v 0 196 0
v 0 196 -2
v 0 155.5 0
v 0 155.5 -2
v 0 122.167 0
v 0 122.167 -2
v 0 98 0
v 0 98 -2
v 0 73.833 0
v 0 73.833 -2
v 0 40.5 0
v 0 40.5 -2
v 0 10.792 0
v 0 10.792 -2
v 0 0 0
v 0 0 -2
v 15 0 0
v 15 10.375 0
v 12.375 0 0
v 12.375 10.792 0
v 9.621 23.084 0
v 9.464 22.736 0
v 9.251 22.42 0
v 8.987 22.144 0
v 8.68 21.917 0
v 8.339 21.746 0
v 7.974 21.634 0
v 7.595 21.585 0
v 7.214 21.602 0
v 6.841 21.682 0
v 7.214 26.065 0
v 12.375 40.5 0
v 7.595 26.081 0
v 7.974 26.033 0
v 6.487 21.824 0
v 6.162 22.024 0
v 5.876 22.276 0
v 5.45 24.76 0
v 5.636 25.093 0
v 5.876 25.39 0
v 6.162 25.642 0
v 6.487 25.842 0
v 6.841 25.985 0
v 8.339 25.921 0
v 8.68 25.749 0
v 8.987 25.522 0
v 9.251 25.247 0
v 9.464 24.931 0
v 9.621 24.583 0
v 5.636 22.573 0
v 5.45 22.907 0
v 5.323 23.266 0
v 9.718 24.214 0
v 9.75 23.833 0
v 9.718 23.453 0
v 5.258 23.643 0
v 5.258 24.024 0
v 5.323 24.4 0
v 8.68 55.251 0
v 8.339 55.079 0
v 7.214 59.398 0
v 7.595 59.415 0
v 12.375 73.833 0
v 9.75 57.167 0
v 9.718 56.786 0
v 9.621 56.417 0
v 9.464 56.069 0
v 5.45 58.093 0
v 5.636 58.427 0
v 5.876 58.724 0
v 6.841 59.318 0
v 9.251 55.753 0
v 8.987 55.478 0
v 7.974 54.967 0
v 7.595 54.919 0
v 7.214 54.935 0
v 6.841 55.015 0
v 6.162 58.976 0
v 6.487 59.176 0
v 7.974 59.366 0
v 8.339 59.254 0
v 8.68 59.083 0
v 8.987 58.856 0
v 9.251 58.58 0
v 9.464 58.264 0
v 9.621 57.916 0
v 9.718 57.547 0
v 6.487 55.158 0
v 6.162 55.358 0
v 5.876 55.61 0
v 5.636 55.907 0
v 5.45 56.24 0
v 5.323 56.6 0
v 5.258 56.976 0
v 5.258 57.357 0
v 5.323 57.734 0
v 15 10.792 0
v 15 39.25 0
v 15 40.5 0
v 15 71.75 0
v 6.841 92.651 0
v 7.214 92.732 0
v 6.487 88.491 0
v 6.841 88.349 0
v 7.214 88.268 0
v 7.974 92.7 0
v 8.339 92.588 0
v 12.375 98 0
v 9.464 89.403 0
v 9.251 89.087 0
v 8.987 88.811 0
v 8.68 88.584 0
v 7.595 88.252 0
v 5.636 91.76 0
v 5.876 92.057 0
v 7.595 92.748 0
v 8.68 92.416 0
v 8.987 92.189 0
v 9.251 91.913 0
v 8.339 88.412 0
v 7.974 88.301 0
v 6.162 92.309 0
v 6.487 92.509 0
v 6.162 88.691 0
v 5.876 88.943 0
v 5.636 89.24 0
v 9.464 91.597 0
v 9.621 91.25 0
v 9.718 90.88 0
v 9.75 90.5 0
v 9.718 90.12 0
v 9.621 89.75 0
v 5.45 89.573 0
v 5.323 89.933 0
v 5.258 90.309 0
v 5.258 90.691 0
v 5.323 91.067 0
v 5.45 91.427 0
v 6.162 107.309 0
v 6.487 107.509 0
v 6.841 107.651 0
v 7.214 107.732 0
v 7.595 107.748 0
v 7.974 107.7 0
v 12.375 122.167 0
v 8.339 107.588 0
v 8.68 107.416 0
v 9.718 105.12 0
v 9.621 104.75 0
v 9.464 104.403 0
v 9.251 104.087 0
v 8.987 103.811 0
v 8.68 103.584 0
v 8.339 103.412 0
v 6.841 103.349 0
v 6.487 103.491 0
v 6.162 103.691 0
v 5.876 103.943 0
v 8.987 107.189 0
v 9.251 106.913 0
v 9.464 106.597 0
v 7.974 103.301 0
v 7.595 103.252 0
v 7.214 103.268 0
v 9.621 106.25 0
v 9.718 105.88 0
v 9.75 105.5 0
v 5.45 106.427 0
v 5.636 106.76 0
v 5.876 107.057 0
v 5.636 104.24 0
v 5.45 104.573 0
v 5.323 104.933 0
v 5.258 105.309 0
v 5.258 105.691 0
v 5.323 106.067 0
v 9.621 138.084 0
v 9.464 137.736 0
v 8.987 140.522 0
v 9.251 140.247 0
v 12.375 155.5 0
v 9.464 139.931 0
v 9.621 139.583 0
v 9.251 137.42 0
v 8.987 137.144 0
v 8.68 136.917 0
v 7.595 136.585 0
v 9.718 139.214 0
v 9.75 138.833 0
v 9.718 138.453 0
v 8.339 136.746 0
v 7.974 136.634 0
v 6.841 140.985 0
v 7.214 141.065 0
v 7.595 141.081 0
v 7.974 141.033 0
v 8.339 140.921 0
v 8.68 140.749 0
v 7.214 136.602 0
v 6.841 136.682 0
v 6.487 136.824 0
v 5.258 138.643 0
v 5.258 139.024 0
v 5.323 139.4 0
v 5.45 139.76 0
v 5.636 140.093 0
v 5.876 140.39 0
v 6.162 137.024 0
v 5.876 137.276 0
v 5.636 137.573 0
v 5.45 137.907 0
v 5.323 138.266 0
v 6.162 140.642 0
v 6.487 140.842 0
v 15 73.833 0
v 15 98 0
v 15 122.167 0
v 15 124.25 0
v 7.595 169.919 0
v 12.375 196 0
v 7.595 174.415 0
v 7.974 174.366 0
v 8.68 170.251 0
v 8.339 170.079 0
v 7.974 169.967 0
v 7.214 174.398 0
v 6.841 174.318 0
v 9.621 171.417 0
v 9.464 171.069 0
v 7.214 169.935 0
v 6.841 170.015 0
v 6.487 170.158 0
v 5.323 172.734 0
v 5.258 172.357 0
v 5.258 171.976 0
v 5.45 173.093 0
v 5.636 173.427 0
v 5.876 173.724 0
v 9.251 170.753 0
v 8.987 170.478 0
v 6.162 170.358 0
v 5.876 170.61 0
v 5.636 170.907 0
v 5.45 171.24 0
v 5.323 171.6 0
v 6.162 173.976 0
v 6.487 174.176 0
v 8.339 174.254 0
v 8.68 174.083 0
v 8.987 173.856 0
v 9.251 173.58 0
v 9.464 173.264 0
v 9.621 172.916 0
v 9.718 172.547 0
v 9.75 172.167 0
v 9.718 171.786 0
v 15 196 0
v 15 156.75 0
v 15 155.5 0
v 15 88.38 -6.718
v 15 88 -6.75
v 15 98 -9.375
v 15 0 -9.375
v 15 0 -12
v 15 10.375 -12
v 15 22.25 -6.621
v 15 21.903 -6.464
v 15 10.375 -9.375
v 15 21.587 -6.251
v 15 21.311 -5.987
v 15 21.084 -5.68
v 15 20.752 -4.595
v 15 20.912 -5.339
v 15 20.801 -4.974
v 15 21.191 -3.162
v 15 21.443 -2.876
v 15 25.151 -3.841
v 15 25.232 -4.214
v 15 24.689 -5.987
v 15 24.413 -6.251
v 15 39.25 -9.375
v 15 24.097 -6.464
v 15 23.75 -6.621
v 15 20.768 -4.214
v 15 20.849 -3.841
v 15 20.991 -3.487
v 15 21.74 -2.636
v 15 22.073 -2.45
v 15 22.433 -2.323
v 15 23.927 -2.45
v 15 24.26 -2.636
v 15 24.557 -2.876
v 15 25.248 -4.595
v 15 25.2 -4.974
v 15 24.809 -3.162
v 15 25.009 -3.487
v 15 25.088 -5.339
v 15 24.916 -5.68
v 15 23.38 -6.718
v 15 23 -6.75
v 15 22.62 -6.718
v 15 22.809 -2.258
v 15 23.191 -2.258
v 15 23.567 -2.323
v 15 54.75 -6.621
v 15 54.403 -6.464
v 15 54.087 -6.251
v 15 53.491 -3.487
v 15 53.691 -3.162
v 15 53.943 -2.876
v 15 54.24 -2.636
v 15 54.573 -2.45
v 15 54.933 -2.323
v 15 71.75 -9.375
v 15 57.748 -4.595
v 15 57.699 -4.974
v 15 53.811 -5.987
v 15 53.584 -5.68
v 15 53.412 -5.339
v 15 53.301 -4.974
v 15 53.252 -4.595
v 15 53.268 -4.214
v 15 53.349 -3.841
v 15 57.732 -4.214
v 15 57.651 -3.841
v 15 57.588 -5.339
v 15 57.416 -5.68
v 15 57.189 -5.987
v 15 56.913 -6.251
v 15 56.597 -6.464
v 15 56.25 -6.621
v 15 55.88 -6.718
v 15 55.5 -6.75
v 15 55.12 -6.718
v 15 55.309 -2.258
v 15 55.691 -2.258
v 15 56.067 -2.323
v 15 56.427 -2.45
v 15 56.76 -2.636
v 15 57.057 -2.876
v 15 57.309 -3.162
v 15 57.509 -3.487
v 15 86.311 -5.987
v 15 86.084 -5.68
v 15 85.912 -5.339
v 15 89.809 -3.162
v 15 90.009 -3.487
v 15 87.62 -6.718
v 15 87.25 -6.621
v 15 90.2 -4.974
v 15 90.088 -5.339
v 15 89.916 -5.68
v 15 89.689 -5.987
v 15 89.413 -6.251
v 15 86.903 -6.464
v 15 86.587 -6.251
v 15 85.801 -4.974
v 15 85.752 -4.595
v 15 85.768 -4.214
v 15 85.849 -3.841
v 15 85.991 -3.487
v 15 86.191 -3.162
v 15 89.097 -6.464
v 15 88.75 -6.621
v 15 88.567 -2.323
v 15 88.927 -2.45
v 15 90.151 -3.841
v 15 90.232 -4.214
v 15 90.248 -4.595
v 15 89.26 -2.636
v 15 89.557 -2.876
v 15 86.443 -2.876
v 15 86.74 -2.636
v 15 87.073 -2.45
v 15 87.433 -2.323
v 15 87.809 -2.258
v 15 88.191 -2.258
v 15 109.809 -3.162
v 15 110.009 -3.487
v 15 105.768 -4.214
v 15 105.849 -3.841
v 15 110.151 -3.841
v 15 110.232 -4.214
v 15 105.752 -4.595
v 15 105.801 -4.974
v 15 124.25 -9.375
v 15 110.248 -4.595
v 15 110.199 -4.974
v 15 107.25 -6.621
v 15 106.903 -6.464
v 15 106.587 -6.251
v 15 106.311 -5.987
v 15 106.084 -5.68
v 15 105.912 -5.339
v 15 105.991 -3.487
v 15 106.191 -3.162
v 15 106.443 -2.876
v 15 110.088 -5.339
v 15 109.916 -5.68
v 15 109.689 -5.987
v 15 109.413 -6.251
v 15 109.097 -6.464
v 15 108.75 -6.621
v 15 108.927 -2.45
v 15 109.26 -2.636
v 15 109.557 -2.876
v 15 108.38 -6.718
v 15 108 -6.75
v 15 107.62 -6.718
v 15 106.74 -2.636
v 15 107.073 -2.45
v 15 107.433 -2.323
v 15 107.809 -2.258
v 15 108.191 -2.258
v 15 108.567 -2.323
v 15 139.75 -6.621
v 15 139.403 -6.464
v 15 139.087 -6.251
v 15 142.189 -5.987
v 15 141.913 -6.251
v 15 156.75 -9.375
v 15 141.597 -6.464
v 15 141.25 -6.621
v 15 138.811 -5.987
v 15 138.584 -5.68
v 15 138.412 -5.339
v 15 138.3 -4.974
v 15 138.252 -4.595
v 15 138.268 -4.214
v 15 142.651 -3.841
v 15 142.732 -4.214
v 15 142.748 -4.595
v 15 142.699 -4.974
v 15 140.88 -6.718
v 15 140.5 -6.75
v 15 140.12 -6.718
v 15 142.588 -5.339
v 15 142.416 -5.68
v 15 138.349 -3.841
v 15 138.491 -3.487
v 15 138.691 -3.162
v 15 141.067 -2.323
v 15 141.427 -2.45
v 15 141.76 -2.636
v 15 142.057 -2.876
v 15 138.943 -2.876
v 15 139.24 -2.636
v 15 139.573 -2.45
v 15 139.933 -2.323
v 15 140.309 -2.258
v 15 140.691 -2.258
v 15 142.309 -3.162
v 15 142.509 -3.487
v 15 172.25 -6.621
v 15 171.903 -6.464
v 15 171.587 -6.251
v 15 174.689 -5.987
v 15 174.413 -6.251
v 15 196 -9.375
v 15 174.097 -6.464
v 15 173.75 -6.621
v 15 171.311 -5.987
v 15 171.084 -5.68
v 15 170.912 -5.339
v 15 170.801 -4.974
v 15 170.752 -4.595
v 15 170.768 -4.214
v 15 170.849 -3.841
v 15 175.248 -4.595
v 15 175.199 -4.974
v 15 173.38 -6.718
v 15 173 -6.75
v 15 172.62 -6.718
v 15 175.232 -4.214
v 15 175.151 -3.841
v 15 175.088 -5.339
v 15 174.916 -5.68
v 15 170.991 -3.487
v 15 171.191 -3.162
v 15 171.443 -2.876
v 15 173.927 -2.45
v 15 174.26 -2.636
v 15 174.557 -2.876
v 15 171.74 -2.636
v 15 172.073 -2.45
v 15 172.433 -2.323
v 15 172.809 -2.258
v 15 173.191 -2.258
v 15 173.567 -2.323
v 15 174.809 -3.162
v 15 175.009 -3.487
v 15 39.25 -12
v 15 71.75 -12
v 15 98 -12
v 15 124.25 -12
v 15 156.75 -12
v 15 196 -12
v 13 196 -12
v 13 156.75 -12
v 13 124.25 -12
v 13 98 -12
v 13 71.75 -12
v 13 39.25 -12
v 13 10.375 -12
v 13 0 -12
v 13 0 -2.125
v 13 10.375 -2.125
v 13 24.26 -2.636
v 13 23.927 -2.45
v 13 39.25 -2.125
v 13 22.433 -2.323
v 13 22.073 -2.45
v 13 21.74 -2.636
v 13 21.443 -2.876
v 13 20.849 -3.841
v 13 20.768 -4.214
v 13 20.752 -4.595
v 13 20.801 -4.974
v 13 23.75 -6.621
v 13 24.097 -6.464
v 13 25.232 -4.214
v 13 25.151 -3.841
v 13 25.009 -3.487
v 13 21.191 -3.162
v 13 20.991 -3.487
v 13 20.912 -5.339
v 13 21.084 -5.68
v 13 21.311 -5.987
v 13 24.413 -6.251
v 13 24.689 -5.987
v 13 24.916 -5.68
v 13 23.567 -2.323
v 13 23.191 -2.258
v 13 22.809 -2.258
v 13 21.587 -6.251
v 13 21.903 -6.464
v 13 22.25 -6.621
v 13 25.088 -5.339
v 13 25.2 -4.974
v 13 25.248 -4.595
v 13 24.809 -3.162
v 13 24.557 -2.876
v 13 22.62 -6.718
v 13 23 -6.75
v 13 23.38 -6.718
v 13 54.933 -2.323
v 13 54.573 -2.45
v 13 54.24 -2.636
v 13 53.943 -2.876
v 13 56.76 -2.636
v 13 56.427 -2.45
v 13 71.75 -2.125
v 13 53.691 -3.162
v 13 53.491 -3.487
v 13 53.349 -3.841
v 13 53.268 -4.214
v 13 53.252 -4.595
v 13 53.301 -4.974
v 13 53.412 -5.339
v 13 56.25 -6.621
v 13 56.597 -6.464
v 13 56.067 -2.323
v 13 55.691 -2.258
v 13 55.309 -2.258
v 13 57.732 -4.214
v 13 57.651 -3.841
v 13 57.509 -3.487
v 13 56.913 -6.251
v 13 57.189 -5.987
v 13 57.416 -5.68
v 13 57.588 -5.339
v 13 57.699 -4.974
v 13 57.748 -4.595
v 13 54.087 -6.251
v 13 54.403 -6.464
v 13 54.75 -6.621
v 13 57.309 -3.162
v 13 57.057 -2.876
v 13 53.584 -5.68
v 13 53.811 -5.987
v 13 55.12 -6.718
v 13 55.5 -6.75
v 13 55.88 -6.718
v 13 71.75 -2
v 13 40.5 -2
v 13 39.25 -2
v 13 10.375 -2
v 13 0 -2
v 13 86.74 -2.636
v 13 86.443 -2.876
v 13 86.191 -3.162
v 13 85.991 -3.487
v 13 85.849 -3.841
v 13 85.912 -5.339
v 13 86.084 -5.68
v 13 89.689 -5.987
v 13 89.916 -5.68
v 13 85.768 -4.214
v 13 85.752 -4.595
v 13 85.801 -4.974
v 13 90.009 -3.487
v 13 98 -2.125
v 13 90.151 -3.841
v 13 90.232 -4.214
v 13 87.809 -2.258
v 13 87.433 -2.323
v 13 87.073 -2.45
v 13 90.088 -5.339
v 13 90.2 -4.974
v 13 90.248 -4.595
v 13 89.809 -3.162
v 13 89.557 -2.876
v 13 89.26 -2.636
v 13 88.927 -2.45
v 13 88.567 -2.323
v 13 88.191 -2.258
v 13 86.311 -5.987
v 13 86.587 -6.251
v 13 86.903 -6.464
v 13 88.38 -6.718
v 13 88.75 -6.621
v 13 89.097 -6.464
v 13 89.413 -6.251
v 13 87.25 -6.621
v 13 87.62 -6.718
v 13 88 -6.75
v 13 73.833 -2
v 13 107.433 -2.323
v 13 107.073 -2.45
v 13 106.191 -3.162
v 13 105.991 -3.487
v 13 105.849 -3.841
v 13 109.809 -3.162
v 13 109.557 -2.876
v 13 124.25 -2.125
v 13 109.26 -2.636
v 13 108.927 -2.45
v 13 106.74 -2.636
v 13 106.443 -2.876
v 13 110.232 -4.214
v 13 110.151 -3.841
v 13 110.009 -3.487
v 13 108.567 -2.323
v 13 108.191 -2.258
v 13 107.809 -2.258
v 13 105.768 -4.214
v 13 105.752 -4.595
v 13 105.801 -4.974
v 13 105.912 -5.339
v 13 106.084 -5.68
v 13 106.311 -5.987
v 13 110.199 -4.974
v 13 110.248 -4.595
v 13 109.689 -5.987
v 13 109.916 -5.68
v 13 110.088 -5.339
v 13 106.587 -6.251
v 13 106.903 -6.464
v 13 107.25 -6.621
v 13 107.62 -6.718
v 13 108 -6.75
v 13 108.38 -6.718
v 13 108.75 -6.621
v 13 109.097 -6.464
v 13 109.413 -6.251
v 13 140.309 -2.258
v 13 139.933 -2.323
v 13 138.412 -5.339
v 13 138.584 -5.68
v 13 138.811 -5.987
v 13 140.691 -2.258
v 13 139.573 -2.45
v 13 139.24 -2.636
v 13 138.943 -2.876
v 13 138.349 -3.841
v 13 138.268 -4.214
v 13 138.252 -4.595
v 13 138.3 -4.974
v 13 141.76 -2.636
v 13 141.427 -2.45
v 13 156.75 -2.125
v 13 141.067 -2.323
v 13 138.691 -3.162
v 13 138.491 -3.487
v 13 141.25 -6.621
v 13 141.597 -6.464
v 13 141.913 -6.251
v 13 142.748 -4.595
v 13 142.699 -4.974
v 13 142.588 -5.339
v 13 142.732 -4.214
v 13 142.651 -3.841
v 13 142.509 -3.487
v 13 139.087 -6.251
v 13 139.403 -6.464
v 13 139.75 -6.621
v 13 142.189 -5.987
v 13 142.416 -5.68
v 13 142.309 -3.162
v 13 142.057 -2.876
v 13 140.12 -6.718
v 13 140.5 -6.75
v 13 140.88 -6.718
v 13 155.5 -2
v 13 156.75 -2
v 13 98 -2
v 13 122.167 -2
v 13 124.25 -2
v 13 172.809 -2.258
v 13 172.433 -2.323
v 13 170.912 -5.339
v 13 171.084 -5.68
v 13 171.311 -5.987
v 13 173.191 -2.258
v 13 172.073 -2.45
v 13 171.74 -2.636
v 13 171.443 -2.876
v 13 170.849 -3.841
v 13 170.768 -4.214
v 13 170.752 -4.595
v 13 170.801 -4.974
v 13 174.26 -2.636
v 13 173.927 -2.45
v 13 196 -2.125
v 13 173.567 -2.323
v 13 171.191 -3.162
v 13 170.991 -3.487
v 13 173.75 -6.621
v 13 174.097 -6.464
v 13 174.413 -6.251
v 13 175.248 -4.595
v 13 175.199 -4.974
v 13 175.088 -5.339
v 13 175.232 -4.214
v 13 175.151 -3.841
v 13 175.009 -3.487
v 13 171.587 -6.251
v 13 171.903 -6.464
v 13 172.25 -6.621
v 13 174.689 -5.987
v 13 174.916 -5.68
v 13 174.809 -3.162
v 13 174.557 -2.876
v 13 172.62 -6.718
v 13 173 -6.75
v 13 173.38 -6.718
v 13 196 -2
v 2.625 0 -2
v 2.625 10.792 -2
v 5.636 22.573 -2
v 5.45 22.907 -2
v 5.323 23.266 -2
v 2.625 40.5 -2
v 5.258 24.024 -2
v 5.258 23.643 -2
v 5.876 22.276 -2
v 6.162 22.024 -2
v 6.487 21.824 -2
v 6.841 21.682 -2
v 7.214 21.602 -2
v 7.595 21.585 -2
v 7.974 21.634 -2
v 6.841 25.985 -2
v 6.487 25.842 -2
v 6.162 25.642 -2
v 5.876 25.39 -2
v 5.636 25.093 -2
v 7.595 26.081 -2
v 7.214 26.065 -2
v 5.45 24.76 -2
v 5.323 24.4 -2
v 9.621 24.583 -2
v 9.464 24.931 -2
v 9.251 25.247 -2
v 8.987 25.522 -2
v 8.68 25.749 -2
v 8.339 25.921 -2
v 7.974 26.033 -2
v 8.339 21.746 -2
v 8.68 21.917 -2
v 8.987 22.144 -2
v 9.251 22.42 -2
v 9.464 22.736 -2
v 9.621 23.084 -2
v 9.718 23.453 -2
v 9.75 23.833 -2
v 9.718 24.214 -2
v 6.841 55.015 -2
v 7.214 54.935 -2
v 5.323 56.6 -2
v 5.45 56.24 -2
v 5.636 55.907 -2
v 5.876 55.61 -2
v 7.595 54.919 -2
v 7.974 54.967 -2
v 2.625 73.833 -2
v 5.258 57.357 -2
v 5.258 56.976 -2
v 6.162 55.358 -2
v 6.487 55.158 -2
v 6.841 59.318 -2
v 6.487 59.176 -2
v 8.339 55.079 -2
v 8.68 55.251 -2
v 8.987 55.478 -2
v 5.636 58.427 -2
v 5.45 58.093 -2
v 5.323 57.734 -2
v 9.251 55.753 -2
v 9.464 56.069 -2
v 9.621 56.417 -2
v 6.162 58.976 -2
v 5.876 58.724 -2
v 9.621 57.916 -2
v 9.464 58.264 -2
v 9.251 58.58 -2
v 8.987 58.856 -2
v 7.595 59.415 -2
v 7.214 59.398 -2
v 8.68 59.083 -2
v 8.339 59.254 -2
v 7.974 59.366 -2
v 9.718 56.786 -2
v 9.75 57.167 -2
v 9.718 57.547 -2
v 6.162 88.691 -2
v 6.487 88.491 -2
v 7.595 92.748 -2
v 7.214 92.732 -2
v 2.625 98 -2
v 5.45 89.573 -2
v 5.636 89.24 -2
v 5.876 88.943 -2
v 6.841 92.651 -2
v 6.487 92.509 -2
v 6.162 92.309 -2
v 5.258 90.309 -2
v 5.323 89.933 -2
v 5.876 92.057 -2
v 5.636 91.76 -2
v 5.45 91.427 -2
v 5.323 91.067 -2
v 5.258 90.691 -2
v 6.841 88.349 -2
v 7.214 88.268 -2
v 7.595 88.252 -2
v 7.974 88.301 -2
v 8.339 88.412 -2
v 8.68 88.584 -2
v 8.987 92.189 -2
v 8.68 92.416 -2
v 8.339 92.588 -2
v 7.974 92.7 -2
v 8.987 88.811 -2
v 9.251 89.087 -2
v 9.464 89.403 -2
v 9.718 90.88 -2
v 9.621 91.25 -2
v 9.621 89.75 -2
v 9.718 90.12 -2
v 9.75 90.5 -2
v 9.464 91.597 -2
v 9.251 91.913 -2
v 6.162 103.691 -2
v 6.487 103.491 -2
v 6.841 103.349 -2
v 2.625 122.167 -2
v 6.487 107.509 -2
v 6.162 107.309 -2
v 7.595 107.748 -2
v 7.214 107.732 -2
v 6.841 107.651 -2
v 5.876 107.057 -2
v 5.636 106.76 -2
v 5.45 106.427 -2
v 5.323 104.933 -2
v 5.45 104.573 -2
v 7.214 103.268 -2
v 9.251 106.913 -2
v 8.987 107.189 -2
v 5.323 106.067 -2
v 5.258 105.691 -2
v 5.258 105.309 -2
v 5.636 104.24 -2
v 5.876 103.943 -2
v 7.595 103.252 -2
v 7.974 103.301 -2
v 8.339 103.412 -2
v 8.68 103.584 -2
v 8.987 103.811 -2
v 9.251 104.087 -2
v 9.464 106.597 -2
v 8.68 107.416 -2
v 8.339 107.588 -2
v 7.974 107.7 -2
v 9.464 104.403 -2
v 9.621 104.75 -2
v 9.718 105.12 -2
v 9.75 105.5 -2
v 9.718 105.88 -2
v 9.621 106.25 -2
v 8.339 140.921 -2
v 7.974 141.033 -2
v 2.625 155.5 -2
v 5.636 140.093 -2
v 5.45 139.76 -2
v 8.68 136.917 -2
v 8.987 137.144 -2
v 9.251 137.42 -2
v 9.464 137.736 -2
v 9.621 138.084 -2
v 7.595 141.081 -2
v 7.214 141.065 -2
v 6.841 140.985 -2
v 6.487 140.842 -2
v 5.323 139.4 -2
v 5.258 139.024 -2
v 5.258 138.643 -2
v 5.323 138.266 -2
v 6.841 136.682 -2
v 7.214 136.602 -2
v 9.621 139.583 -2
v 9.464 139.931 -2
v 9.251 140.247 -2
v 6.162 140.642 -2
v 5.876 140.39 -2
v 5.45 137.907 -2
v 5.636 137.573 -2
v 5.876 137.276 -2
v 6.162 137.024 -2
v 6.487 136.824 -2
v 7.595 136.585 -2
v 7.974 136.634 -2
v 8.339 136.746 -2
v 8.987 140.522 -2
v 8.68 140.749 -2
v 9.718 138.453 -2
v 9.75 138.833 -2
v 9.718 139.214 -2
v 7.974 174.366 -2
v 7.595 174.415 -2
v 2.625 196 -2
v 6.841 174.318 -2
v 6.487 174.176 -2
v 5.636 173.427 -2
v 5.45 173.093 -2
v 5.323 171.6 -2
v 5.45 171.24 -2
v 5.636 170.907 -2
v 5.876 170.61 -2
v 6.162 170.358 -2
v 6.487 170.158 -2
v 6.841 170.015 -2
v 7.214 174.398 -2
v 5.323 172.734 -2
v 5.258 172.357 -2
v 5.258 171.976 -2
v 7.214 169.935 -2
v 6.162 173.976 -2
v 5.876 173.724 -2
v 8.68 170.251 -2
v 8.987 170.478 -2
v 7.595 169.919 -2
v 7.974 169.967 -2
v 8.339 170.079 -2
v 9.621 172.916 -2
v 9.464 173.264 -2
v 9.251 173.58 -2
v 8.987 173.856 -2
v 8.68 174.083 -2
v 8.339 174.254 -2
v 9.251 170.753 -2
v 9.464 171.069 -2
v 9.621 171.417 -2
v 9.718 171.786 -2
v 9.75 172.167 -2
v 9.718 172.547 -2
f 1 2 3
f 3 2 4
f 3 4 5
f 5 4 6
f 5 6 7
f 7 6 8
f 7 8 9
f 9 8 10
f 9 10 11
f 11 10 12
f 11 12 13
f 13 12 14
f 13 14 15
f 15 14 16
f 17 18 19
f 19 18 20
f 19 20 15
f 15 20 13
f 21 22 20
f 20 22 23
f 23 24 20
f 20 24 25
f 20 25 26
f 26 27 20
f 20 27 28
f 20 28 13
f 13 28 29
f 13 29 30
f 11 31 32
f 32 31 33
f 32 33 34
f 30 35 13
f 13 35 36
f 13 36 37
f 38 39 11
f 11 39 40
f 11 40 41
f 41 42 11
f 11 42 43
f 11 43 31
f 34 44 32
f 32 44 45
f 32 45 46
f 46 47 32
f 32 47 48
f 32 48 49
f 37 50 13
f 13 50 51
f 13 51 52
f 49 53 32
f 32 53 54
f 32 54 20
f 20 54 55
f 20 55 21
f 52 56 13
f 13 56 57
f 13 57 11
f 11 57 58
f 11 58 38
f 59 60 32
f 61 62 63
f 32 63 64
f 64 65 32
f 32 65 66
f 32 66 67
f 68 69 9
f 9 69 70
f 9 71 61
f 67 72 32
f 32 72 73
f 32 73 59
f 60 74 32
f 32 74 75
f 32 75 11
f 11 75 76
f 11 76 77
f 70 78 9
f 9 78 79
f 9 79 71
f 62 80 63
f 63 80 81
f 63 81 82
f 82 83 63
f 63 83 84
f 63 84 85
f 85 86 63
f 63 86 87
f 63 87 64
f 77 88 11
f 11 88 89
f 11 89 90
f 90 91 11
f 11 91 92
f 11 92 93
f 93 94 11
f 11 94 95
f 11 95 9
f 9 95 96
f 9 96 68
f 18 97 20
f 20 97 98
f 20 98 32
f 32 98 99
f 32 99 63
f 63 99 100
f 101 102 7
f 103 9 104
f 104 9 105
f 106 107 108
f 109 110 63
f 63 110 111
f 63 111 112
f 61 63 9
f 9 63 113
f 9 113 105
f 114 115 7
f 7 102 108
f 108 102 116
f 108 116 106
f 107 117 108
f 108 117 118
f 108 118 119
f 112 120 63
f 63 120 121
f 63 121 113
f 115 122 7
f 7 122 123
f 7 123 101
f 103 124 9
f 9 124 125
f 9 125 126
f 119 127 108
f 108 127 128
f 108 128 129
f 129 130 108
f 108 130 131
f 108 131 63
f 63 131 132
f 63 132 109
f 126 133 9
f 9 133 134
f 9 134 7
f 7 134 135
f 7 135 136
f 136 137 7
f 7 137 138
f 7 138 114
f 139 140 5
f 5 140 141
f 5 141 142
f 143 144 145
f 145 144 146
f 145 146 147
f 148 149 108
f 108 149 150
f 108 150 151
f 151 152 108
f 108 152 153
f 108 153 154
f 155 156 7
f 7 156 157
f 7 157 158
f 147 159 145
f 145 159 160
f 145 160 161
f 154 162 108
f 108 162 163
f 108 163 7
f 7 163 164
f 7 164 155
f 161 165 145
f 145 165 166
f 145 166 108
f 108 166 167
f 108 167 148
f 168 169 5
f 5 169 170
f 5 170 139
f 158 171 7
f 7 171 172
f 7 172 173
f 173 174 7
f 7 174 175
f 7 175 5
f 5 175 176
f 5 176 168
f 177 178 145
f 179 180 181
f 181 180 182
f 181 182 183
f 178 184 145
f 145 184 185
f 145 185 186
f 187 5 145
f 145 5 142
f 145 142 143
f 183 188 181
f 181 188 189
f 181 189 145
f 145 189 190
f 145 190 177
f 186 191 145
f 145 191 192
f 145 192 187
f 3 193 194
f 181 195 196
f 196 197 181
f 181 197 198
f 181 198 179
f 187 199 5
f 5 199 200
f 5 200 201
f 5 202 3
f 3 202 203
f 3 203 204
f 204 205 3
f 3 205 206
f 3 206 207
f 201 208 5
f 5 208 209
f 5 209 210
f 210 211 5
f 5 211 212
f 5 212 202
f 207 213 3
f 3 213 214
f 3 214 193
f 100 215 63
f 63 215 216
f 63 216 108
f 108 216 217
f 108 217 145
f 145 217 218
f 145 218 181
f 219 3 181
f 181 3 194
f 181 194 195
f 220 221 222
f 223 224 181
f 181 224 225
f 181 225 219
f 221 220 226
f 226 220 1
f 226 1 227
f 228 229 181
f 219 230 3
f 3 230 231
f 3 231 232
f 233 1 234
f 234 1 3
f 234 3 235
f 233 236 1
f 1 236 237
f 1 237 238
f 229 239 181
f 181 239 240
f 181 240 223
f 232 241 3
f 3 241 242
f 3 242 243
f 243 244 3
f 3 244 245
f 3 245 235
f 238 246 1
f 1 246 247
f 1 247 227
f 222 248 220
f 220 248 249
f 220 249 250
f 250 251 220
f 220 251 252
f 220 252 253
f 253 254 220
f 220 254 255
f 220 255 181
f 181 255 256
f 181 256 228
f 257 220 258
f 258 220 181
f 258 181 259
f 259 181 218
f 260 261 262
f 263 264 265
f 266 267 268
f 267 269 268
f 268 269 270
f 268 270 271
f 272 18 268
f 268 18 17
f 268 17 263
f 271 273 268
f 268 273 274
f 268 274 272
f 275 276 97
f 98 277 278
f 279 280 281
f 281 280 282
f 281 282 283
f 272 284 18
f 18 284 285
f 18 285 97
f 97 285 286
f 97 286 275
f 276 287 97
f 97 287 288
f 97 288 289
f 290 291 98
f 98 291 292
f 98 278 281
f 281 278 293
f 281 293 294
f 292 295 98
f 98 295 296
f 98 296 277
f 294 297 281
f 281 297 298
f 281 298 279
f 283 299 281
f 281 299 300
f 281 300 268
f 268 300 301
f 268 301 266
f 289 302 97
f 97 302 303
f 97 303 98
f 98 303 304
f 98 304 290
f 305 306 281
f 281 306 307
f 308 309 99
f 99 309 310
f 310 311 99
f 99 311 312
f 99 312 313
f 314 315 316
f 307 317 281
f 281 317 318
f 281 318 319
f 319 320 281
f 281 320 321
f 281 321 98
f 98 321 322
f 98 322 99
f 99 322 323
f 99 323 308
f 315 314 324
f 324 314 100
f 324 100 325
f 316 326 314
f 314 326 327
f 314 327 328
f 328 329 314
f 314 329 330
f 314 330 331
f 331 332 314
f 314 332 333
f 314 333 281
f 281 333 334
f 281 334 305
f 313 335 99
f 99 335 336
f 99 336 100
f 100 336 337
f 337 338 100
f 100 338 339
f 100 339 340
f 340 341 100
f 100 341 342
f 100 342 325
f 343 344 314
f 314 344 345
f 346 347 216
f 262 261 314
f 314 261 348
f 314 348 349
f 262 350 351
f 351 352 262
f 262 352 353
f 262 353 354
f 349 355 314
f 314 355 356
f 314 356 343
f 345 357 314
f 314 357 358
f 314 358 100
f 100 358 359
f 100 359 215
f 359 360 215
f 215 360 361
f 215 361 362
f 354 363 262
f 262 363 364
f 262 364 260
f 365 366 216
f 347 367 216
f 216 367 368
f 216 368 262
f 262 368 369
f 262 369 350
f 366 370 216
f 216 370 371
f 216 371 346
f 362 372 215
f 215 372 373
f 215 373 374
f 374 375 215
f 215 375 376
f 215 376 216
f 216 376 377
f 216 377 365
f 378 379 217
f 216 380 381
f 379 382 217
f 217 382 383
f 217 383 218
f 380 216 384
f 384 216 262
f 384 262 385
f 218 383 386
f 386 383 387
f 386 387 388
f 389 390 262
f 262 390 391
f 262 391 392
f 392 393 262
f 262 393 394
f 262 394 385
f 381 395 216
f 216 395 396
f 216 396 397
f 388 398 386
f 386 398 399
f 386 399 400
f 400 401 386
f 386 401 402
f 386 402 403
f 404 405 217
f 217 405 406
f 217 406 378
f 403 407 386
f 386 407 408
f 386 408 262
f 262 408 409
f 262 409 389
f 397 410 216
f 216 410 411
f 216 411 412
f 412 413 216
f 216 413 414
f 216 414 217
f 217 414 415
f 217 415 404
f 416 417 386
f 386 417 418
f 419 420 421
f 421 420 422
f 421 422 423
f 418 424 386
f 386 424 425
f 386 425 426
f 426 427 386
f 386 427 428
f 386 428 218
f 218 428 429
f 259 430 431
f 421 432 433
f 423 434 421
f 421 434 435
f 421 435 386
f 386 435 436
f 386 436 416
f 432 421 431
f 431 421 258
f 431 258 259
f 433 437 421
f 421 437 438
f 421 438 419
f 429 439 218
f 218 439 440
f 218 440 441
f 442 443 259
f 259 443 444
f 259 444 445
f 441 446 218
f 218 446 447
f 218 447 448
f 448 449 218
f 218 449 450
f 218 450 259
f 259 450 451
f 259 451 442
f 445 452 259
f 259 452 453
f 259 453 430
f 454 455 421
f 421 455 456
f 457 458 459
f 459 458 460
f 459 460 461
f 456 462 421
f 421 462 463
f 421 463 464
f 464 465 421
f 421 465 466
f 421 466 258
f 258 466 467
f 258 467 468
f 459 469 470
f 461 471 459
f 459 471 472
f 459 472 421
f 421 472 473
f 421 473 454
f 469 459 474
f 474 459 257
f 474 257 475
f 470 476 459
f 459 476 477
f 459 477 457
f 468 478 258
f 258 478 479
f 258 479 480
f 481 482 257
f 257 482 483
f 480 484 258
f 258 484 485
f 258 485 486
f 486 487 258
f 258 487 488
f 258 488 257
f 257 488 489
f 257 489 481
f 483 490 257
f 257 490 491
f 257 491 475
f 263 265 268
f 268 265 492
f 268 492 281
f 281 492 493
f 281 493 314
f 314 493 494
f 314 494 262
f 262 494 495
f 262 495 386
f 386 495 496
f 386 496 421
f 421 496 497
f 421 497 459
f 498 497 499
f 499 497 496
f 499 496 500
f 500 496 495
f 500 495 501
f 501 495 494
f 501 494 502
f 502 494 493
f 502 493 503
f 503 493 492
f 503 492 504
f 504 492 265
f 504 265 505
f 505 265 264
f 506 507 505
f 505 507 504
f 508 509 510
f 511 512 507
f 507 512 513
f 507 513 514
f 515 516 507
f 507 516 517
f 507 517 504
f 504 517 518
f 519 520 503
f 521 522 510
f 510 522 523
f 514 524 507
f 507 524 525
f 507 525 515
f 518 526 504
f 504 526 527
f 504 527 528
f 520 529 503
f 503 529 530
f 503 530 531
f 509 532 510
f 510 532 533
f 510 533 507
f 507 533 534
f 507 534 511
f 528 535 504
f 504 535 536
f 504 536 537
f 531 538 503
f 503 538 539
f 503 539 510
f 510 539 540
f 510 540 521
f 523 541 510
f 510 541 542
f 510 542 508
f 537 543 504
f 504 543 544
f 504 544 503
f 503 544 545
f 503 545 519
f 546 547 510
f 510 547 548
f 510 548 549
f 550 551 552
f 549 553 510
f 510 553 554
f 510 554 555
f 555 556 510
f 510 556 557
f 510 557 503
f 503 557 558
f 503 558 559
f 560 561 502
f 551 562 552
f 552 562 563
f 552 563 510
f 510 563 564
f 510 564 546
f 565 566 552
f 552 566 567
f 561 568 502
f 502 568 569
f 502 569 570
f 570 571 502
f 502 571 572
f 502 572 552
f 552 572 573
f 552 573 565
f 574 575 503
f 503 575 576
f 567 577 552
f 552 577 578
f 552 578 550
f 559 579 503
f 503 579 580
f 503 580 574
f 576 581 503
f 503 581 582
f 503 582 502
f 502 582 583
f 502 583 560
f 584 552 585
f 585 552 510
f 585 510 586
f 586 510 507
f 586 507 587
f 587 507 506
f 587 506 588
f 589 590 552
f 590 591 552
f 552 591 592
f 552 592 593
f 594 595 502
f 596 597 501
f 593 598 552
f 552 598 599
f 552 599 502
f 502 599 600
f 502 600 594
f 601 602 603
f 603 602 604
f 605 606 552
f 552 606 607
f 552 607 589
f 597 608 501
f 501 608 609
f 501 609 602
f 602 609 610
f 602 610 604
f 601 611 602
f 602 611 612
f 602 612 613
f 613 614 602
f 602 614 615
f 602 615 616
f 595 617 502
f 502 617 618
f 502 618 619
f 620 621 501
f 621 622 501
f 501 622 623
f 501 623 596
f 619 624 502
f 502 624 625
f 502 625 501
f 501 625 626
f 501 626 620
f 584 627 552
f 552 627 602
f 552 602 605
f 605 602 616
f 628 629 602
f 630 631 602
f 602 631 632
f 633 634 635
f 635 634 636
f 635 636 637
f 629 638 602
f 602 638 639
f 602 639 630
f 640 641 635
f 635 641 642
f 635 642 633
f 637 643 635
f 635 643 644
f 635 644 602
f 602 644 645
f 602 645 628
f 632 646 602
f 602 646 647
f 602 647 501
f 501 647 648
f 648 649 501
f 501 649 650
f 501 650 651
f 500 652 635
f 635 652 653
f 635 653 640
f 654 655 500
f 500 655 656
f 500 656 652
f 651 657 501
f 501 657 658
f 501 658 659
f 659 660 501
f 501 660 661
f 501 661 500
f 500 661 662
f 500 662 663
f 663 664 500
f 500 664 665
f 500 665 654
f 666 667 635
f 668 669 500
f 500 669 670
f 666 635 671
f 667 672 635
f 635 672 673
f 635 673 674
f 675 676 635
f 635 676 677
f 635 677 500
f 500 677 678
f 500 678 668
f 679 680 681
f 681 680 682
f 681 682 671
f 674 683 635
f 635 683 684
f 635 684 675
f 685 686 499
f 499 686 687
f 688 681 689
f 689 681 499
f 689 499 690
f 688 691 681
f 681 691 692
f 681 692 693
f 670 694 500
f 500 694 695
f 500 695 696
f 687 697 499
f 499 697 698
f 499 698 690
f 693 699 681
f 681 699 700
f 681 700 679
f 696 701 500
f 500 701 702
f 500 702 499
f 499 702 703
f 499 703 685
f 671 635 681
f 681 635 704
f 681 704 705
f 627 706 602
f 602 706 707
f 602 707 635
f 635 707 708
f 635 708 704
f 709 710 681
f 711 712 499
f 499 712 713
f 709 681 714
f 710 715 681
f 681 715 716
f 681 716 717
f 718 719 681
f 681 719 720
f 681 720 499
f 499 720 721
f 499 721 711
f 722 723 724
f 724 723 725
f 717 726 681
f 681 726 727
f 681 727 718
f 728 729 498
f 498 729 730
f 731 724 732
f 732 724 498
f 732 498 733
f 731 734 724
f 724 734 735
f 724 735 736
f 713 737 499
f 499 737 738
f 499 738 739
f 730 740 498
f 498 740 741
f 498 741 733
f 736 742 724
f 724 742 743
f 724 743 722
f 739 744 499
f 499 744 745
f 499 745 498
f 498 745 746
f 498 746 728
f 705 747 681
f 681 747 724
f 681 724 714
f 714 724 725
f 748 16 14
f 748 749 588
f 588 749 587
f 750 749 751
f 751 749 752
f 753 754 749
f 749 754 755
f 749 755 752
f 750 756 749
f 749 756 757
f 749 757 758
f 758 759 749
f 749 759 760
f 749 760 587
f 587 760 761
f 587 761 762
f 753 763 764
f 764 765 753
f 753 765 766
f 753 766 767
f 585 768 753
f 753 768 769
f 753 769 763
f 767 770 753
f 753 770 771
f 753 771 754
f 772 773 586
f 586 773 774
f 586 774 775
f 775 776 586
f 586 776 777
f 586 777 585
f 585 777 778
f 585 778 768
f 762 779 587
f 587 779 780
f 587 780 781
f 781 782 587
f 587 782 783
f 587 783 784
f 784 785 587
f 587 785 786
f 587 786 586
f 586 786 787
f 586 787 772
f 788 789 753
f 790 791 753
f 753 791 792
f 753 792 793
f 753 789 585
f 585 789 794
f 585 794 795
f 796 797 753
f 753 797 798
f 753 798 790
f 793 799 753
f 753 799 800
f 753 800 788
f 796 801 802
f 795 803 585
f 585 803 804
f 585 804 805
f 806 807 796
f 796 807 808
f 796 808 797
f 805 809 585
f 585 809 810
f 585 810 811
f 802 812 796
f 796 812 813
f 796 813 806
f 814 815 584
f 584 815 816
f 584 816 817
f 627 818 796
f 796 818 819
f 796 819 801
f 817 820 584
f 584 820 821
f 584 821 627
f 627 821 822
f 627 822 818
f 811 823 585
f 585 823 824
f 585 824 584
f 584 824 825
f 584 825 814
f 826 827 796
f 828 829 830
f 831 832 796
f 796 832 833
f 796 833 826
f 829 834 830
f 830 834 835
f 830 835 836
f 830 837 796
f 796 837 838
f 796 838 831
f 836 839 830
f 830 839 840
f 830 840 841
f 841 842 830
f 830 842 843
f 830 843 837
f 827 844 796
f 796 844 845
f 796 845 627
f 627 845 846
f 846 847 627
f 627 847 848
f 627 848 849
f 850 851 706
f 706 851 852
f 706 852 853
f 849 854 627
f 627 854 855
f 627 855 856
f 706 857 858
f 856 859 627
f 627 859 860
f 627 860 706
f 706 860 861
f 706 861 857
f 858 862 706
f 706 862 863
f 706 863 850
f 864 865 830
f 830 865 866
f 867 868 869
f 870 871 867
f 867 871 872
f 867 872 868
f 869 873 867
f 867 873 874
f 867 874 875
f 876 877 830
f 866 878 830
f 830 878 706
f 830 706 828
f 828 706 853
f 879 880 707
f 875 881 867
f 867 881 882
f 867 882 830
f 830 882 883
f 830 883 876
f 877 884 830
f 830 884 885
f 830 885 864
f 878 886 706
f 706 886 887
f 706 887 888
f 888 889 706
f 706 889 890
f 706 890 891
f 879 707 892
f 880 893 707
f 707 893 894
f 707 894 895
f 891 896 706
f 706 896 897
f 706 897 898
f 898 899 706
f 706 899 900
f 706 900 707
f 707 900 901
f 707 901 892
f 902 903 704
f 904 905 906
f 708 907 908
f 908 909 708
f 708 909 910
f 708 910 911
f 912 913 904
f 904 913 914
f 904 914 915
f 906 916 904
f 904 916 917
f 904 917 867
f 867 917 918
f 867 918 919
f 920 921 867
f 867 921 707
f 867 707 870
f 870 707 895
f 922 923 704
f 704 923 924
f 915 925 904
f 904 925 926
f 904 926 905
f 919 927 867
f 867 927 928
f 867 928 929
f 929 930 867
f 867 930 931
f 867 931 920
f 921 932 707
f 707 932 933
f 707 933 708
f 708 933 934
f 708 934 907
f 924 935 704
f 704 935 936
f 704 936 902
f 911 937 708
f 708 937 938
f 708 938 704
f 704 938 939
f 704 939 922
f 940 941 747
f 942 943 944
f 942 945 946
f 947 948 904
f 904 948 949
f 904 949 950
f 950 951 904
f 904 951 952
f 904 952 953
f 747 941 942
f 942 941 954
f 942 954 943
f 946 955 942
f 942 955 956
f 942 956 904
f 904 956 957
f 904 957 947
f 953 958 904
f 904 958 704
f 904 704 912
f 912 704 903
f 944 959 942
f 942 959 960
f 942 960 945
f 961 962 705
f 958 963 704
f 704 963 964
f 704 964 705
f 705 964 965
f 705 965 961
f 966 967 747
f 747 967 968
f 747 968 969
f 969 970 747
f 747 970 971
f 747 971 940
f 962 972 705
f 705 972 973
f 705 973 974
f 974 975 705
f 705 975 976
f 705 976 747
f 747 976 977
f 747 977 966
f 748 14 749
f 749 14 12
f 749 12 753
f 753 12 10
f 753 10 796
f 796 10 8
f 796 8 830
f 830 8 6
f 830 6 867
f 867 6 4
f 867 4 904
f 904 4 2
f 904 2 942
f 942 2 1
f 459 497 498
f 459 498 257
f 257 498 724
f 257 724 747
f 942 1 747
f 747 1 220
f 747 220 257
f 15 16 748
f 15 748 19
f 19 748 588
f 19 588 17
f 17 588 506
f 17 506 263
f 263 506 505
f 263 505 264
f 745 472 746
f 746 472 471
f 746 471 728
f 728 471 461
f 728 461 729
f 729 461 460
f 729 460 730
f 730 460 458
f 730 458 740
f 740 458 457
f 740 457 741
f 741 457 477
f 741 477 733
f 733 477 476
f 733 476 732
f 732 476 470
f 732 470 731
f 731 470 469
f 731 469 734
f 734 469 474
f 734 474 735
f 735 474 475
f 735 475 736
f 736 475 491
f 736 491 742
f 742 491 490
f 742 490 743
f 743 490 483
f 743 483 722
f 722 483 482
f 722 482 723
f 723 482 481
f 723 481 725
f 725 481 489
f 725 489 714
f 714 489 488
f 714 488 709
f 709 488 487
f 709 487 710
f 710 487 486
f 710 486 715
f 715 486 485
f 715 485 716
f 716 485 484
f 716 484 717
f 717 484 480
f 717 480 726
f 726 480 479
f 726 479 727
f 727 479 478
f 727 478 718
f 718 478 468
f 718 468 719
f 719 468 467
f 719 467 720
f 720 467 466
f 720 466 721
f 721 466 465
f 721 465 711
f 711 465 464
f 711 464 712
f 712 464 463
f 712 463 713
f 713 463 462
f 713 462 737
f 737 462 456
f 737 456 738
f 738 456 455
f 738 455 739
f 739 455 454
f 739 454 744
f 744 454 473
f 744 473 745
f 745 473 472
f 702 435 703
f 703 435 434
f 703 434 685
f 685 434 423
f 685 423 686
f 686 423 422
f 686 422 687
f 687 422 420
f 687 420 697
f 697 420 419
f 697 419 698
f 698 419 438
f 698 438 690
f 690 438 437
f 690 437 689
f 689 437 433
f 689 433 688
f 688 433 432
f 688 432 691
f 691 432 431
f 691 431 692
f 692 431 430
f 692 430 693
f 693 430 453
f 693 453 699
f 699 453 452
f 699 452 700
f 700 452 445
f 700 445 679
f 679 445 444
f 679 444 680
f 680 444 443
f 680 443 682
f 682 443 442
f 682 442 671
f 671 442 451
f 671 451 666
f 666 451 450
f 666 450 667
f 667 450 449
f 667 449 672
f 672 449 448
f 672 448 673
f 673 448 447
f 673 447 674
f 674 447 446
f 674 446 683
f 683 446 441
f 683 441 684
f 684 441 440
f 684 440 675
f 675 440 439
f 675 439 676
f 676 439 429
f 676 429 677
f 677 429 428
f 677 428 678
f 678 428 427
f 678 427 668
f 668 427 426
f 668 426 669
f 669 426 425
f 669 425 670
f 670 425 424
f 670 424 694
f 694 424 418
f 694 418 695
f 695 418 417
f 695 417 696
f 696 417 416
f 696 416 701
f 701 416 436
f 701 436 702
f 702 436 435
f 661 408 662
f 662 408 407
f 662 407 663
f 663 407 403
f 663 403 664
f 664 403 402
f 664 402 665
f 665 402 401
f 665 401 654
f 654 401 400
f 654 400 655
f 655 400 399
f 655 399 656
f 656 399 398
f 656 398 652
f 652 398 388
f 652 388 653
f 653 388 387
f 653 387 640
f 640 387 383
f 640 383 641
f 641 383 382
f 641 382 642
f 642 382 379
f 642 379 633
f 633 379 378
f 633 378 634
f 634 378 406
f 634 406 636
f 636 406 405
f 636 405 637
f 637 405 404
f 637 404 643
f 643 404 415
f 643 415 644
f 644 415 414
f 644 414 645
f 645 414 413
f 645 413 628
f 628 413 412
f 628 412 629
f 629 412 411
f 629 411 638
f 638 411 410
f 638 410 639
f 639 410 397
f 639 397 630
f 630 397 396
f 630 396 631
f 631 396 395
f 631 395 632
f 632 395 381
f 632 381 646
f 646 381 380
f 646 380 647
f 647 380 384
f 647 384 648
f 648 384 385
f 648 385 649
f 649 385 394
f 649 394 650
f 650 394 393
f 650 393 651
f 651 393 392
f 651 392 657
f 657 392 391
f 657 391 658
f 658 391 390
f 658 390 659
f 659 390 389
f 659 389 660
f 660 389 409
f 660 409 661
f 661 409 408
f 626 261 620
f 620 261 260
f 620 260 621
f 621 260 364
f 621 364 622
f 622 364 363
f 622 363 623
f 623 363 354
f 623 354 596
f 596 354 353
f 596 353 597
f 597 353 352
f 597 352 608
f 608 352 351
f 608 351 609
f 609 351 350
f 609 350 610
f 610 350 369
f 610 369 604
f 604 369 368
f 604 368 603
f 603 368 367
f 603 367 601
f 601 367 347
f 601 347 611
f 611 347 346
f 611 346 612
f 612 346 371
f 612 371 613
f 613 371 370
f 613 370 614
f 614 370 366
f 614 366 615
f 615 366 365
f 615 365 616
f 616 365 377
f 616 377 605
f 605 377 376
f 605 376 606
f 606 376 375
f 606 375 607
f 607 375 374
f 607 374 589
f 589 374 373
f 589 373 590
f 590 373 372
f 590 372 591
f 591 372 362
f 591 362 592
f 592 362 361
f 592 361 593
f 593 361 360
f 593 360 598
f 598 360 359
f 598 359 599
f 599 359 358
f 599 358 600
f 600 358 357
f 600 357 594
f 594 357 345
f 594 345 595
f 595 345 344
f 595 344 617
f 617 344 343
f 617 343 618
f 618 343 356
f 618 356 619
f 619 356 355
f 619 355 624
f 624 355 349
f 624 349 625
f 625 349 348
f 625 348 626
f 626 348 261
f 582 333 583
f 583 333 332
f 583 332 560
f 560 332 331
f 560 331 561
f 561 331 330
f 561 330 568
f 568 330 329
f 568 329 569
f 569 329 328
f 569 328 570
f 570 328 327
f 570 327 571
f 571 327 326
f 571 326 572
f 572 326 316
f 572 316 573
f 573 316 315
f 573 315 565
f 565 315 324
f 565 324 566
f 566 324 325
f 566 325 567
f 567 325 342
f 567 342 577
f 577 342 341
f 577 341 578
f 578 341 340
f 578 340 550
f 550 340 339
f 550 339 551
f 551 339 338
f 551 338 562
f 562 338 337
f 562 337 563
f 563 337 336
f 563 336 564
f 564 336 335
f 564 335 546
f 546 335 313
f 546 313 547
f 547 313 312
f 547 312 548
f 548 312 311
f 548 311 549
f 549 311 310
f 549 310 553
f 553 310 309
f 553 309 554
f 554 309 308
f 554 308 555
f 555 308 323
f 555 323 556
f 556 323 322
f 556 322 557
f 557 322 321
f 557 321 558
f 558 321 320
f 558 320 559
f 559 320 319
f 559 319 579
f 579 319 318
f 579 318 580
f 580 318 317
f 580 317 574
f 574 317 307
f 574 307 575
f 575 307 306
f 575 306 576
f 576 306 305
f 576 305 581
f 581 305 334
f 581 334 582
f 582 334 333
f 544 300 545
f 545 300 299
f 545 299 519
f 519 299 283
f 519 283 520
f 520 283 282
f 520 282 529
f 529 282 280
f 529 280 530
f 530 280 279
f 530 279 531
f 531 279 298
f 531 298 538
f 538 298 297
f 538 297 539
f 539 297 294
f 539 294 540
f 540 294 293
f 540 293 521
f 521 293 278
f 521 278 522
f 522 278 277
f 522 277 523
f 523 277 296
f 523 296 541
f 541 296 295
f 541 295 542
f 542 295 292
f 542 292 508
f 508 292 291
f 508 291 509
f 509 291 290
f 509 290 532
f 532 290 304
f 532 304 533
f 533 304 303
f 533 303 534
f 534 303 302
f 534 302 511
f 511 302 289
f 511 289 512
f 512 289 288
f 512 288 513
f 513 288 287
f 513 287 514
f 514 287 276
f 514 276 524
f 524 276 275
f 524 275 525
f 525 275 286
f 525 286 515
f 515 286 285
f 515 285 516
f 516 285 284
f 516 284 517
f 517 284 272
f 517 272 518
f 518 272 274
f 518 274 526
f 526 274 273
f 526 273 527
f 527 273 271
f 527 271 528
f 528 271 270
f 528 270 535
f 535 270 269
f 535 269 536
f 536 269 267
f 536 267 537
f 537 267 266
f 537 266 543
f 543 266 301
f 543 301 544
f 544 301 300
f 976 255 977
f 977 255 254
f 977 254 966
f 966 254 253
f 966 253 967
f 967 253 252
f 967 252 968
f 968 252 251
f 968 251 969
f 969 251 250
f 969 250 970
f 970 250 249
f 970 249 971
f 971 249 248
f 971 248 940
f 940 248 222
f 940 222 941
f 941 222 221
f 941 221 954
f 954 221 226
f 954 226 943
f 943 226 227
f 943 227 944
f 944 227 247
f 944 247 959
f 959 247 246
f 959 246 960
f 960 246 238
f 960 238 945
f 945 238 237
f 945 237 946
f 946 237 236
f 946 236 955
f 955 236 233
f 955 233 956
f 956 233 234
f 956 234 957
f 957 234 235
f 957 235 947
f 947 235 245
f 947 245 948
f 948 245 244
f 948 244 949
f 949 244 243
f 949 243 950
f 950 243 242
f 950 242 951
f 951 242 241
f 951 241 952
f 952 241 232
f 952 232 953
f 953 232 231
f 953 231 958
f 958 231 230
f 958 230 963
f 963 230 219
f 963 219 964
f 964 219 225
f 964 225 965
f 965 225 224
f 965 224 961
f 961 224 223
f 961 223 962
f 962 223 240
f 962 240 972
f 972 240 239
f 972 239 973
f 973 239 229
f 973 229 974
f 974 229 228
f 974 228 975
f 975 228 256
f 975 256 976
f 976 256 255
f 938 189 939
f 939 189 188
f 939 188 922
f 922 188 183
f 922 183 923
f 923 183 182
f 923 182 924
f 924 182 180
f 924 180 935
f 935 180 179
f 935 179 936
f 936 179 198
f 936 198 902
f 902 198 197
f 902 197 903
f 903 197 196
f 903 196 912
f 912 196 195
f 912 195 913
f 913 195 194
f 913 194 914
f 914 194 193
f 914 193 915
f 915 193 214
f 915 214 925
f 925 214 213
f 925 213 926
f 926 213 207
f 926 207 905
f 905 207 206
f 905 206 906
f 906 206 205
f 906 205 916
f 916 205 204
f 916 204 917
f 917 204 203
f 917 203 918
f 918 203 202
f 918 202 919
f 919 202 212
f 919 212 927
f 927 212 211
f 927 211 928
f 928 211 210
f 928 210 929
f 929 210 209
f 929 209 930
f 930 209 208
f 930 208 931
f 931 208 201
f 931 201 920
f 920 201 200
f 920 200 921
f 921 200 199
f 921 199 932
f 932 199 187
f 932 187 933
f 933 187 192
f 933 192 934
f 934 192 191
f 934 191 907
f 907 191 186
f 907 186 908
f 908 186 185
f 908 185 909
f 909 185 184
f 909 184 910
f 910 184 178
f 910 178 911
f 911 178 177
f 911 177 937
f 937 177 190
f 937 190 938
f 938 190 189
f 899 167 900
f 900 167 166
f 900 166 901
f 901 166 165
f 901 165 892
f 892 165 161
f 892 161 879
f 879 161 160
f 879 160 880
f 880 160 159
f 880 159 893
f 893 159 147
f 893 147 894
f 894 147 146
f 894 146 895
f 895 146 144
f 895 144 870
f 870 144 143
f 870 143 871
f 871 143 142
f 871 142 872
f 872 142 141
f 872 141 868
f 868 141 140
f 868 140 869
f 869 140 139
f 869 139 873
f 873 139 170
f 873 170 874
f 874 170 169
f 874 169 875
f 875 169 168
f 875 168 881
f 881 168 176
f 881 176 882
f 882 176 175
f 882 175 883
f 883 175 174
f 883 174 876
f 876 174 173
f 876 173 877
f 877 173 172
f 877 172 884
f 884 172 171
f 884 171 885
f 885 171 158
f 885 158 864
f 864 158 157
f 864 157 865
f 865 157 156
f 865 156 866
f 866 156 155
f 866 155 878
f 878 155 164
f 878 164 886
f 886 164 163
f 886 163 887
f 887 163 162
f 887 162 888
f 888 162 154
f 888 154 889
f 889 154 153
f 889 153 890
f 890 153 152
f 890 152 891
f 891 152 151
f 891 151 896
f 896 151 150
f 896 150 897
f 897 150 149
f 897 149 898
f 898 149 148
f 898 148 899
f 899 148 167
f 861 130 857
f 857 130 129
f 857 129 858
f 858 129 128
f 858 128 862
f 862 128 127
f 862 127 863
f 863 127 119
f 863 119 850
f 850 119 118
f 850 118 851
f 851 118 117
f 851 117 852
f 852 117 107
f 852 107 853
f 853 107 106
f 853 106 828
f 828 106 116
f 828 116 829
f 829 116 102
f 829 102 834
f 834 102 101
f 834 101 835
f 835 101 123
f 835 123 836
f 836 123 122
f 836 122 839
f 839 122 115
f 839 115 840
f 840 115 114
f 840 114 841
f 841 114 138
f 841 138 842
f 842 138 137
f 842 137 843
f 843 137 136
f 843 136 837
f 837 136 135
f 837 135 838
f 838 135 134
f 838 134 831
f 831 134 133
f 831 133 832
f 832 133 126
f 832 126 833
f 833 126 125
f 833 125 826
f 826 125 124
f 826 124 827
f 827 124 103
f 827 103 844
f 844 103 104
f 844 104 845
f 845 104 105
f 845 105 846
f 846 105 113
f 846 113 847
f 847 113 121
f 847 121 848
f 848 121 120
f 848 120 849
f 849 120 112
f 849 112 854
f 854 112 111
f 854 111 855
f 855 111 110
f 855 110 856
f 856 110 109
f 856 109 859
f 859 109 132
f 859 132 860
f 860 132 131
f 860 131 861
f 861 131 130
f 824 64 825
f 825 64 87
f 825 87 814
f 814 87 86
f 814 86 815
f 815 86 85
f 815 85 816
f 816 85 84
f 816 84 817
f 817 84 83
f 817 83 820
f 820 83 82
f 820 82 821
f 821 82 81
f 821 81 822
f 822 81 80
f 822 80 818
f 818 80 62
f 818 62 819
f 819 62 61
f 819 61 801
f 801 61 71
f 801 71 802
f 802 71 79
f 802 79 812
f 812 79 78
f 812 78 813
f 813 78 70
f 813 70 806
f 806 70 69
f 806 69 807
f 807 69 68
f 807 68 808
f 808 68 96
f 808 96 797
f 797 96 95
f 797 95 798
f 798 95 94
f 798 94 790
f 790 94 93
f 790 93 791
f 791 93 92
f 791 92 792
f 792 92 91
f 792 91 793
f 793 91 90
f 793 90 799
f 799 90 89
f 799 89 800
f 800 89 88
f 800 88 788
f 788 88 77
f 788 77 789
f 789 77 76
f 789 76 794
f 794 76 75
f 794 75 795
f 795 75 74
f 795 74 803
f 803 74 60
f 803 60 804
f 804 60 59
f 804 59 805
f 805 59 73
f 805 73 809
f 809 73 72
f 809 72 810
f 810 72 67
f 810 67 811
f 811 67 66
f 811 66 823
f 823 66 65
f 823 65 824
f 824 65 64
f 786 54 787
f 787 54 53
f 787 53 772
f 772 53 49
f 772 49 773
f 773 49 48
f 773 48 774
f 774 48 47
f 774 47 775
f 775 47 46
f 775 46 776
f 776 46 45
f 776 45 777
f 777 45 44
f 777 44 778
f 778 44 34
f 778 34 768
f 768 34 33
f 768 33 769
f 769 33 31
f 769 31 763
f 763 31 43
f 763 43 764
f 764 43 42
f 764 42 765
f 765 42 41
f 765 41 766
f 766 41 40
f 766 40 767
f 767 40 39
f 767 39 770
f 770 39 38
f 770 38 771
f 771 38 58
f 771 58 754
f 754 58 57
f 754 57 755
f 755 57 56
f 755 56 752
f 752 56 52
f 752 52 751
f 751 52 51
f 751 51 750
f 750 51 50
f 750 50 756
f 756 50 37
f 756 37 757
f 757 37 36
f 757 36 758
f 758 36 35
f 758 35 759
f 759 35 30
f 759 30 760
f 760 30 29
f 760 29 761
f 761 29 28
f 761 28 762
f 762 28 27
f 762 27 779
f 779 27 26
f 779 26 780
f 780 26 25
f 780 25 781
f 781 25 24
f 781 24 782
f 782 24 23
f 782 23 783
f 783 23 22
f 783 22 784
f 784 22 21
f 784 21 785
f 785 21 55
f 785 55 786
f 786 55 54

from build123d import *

# Parameters (mm, degrees)
BOSS_EXTRUDE1_DEPTH = 196
CUT_EXTRUDE4_REACH  = 17
SKETCH5_R           = 2.25
CUT_EXTRUDE5_REACH  = 14
SKETCH6_R           = 2.25


with BuildPart() as part:
    # Sketch1 → Boss-Extrude1 (new body)
    with BuildSketch(Plane(origin=(0, 0, 0), x_dir=(1, 0, 0), z_dir=(0, 1, 0))):
        Polygon((0, 0), (15, 0), (15, 12), (13, 12), (13, 2), (0, 2), align=None)
    extrude(amount=BOSS_EXTRUDE1_DEPTH)

    # Sketch5 → Cut-Extrude4 (cut, up to next)
    with BuildSketch(Plane(origin=(15, 0, 0), x_dir=(0, 0, -1), z_dir=(1, 0, 0)), mode=Mode.PRIVATE) as cut_extrude4_sk1:
        with Locations((4.5, 23)):
            Circle(SKETCH5_R)
    cut_extrude4_tool1 = extrude(cut_extrude4_sk1.sketch, amount=-CUT_EXTRUDE4_REACH, mode=Mode.PRIVATE) & part.part
    add(cut_extrude4_tool1.solids().sort_by_distance((15, 23, -4.5))[0], mode=Mode.SUBTRACT)
    # Sketch5 → Cut-Extrude4 (cut, up to next)
    with BuildSketch(Plane(origin=(15, 0, 0), x_dir=(0, 0, -1), z_dir=(1, 0, 0)), mode=Mode.PRIVATE) as cut_extrude4_sk2:
        with Locations((4.5, 55.5)):
            Circle(SKETCH5_R)
    cut_extrude4_tool2 = extrude(cut_extrude4_sk2.sketch, amount=-CUT_EXTRUDE4_REACH, mode=Mode.PRIVATE) & part.part
    add(cut_extrude4_tool2.solids().sort_by_distance((15, 55.5, -4.5))[0], mode=Mode.SUBTRACT)
    # Sketch5 → Cut-Extrude4 (cut, up to next)
    with BuildSketch(Plane(origin=(15, 0, 0), x_dir=(0, 0, -1), z_dir=(1, 0, 0)), mode=Mode.PRIVATE) as cut_extrude4_sk3:
        with Locations((4.5, 88)):
            Circle(SKETCH5_R)
    cut_extrude4_tool3 = extrude(cut_extrude4_sk3.sketch, amount=-CUT_EXTRUDE4_REACH, mode=Mode.PRIVATE) & part.part
    add(cut_extrude4_tool3.solids().sort_by_distance((15, 88, -4.5))[0], mode=Mode.SUBTRACT)
    # Sketch5 → Cut-Extrude4 (cut, up to next)
    with BuildSketch(Plane(origin=(15, 0, 0), x_dir=(0, 0, -1), z_dir=(1, 0, 0)), mode=Mode.PRIVATE) as cut_extrude4_sk4:
        with Locations((4.5, 108)):
            Circle(SKETCH5_R)
    cut_extrude4_tool4 = extrude(cut_extrude4_sk4.sketch, amount=-CUT_EXTRUDE4_REACH, mode=Mode.PRIVATE) & part.part
    add(cut_extrude4_tool4.solids().sort_by_distance((15, 108, -4.5))[0], mode=Mode.SUBTRACT)
    # Sketch5 → Cut-Extrude4 (cut, up to next)
    with BuildSketch(Plane(origin=(15, 0, 0), x_dir=(0, 0, -1), z_dir=(1, 0, 0)), mode=Mode.PRIVATE) as cut_extrude4_sk5:
        with Locations((4.5, 140.5)):
            Circle(SKETCH5_R)
    cut_extrude4_tool5 = extrude(cut_extrude4_sk5.sketch, amount=-CUT_EXTRUDE4_REACH, mode=Mode.PRIVATE) & part.part
    add(cut_extrude4_tool5.solids().sort_by_distance((15, 140.5, -4.5))[0], mode=Mode.SUBTRACT)
    # Sketch5 → Cut-Extrude4 (cut, up to next)
    with BuildSketch(Plane(origin=(15, 0, 0), x_dir=(0, 0, -1), z_dir=(1, 0, 0)), mode=Mode.PRIVATE) as cut_extrude4_sk6:
        with Locations((4.5, 173)):
            Circle(SKETCH5_R)
    cut_extrude4_tool6 = extrude(cut_extrude4_sk6.sketch, amount=-CUT_EXTRUDE4_REACH, mode=Mode.PRIVATE) & part.part
    add(cut_extrude4_tool6.solids().sort_by_distance((15, 173, -4.5))[0], mode=Mode.SUBTRACT)

    # Sketch6 → Cut-Extrude5 (cut, up to next)
    with BuildSketch(Plane.XY, mode=Mode.PRIVATE) as cut_extrude5_sk1:
        with Locations((7.5, 23.833333333)):
            Circle(SKETCH6_R)
    cut_extrude5_tool1 = extrude(cut_extrude5_sk1.sketch, amount=-CUT_EXTRUDE5_REACH, mode=Mode.PRIVATE) & part.part
    add(cut_extrude5_tool1.solids().sort_by_distance((7.5, 23.833333, 0))[0], mode=Mode.SUBTRACT)
    # Sketch6 → Cut-Extrude5 (cut, up to next)
    with BuildSketch(Plane.XY, mode=Mode.PRIVATE) as cut_extrude5_sk2:
        with Locations((7.5, 57.166666667)):
            Circle(SKETCH6_R)
    cut_extrude5_tool2 = extrude(cut_extrude5_sk2.sketch, amount=-CUT_EXTRUDE5_REACH, mode=Mode.PRIVATE) & part.part
    add(cut_extrude5_tool2.solids().sort_by_distance((7.5, 57.166667, 0))[0], mode=Mode.SUBTRACT)
    # Sketch6 → Cut-Extrude5 (cut, up to next)
    with BuildSketch(Plane.XY, mode=Mode.PRIVATE) as cut_extrude5_sk3:
        with Locations((7.5, 90.5)):
            Circle(SKETCH6_R)
    cut_extrude5_tool3 = extrude(cut_extrude5_sk3.sketch, amount=-CUT_EXTRUDE5_REACH, mode=Mode.PRIVATE) & part.part
    add(cut_extrude5_tool3.solids().sort_by_distance((7.5, 90.5, 0))[0], mode=Mode.SUBTRACT)
    # Sketch6 → Cut-Extrude5 (cut, up to next)
    with BuildSketch(Plane.XY, mode=Mode.PRIVATE) as cut_extrude5_sk4:
        with Locations((7.5, 105.5)):
            Circle(SKETCH6_R)
    cut_extrude5_tool4 = extrude(cut_extrude5_sk4.sketch, amount=-CUT_EXTRUDE5_REACH, mode=Mode.PRIVATE) & part.part
    add(cut_extrude5_tool4.solids().sort_by_distance((7.5, 105.5, 0))[0], mode=Mode.SUBTRACT)
    # Sketch6 → Cut-Extrude5 (cut, up to next)
    with BuildSketch(Plane.XY, mode=Mode.PRIVATE) as cut_extrude5_sk5:
        with Locations((7.5, 138.833333333)):
            Circle(SKETCH6_R)
    cut_extrude5_tool5 = extrude(cut_extrude5_sk5.sketch, amount=-CUT_EXTRUDE5_REACH, mode=Mode.PRIVATE) & part.part
    add(cut_extrude5_tool5.solids().sort_by_distance((7.5, 138.833333, 0))[0], mode=Mode.SUBTRACT)
    # Sketch6 → Cut-Extrude5 (cut, up to next)
    with BuildSketch(Plane.XY, mode=Mode.PRIVATE) as cut_extrude5_sk6:
        with Locations((7.5, 172.166666667)):
            Circle(SKETCH6_R)
    cut_extrude5_tool6 = extrude(cut_extrude5_sk6.sketch, amount=-CUT_EXTRUDE5_REACH, mode=Mode.PRIVATE) & part.part
    add(cut_extrude5_tool6.solids().sort_by_distance((7.5, 172.166667, 0))[0], mode=Mode.SUBTRACT)


solid = part.part
